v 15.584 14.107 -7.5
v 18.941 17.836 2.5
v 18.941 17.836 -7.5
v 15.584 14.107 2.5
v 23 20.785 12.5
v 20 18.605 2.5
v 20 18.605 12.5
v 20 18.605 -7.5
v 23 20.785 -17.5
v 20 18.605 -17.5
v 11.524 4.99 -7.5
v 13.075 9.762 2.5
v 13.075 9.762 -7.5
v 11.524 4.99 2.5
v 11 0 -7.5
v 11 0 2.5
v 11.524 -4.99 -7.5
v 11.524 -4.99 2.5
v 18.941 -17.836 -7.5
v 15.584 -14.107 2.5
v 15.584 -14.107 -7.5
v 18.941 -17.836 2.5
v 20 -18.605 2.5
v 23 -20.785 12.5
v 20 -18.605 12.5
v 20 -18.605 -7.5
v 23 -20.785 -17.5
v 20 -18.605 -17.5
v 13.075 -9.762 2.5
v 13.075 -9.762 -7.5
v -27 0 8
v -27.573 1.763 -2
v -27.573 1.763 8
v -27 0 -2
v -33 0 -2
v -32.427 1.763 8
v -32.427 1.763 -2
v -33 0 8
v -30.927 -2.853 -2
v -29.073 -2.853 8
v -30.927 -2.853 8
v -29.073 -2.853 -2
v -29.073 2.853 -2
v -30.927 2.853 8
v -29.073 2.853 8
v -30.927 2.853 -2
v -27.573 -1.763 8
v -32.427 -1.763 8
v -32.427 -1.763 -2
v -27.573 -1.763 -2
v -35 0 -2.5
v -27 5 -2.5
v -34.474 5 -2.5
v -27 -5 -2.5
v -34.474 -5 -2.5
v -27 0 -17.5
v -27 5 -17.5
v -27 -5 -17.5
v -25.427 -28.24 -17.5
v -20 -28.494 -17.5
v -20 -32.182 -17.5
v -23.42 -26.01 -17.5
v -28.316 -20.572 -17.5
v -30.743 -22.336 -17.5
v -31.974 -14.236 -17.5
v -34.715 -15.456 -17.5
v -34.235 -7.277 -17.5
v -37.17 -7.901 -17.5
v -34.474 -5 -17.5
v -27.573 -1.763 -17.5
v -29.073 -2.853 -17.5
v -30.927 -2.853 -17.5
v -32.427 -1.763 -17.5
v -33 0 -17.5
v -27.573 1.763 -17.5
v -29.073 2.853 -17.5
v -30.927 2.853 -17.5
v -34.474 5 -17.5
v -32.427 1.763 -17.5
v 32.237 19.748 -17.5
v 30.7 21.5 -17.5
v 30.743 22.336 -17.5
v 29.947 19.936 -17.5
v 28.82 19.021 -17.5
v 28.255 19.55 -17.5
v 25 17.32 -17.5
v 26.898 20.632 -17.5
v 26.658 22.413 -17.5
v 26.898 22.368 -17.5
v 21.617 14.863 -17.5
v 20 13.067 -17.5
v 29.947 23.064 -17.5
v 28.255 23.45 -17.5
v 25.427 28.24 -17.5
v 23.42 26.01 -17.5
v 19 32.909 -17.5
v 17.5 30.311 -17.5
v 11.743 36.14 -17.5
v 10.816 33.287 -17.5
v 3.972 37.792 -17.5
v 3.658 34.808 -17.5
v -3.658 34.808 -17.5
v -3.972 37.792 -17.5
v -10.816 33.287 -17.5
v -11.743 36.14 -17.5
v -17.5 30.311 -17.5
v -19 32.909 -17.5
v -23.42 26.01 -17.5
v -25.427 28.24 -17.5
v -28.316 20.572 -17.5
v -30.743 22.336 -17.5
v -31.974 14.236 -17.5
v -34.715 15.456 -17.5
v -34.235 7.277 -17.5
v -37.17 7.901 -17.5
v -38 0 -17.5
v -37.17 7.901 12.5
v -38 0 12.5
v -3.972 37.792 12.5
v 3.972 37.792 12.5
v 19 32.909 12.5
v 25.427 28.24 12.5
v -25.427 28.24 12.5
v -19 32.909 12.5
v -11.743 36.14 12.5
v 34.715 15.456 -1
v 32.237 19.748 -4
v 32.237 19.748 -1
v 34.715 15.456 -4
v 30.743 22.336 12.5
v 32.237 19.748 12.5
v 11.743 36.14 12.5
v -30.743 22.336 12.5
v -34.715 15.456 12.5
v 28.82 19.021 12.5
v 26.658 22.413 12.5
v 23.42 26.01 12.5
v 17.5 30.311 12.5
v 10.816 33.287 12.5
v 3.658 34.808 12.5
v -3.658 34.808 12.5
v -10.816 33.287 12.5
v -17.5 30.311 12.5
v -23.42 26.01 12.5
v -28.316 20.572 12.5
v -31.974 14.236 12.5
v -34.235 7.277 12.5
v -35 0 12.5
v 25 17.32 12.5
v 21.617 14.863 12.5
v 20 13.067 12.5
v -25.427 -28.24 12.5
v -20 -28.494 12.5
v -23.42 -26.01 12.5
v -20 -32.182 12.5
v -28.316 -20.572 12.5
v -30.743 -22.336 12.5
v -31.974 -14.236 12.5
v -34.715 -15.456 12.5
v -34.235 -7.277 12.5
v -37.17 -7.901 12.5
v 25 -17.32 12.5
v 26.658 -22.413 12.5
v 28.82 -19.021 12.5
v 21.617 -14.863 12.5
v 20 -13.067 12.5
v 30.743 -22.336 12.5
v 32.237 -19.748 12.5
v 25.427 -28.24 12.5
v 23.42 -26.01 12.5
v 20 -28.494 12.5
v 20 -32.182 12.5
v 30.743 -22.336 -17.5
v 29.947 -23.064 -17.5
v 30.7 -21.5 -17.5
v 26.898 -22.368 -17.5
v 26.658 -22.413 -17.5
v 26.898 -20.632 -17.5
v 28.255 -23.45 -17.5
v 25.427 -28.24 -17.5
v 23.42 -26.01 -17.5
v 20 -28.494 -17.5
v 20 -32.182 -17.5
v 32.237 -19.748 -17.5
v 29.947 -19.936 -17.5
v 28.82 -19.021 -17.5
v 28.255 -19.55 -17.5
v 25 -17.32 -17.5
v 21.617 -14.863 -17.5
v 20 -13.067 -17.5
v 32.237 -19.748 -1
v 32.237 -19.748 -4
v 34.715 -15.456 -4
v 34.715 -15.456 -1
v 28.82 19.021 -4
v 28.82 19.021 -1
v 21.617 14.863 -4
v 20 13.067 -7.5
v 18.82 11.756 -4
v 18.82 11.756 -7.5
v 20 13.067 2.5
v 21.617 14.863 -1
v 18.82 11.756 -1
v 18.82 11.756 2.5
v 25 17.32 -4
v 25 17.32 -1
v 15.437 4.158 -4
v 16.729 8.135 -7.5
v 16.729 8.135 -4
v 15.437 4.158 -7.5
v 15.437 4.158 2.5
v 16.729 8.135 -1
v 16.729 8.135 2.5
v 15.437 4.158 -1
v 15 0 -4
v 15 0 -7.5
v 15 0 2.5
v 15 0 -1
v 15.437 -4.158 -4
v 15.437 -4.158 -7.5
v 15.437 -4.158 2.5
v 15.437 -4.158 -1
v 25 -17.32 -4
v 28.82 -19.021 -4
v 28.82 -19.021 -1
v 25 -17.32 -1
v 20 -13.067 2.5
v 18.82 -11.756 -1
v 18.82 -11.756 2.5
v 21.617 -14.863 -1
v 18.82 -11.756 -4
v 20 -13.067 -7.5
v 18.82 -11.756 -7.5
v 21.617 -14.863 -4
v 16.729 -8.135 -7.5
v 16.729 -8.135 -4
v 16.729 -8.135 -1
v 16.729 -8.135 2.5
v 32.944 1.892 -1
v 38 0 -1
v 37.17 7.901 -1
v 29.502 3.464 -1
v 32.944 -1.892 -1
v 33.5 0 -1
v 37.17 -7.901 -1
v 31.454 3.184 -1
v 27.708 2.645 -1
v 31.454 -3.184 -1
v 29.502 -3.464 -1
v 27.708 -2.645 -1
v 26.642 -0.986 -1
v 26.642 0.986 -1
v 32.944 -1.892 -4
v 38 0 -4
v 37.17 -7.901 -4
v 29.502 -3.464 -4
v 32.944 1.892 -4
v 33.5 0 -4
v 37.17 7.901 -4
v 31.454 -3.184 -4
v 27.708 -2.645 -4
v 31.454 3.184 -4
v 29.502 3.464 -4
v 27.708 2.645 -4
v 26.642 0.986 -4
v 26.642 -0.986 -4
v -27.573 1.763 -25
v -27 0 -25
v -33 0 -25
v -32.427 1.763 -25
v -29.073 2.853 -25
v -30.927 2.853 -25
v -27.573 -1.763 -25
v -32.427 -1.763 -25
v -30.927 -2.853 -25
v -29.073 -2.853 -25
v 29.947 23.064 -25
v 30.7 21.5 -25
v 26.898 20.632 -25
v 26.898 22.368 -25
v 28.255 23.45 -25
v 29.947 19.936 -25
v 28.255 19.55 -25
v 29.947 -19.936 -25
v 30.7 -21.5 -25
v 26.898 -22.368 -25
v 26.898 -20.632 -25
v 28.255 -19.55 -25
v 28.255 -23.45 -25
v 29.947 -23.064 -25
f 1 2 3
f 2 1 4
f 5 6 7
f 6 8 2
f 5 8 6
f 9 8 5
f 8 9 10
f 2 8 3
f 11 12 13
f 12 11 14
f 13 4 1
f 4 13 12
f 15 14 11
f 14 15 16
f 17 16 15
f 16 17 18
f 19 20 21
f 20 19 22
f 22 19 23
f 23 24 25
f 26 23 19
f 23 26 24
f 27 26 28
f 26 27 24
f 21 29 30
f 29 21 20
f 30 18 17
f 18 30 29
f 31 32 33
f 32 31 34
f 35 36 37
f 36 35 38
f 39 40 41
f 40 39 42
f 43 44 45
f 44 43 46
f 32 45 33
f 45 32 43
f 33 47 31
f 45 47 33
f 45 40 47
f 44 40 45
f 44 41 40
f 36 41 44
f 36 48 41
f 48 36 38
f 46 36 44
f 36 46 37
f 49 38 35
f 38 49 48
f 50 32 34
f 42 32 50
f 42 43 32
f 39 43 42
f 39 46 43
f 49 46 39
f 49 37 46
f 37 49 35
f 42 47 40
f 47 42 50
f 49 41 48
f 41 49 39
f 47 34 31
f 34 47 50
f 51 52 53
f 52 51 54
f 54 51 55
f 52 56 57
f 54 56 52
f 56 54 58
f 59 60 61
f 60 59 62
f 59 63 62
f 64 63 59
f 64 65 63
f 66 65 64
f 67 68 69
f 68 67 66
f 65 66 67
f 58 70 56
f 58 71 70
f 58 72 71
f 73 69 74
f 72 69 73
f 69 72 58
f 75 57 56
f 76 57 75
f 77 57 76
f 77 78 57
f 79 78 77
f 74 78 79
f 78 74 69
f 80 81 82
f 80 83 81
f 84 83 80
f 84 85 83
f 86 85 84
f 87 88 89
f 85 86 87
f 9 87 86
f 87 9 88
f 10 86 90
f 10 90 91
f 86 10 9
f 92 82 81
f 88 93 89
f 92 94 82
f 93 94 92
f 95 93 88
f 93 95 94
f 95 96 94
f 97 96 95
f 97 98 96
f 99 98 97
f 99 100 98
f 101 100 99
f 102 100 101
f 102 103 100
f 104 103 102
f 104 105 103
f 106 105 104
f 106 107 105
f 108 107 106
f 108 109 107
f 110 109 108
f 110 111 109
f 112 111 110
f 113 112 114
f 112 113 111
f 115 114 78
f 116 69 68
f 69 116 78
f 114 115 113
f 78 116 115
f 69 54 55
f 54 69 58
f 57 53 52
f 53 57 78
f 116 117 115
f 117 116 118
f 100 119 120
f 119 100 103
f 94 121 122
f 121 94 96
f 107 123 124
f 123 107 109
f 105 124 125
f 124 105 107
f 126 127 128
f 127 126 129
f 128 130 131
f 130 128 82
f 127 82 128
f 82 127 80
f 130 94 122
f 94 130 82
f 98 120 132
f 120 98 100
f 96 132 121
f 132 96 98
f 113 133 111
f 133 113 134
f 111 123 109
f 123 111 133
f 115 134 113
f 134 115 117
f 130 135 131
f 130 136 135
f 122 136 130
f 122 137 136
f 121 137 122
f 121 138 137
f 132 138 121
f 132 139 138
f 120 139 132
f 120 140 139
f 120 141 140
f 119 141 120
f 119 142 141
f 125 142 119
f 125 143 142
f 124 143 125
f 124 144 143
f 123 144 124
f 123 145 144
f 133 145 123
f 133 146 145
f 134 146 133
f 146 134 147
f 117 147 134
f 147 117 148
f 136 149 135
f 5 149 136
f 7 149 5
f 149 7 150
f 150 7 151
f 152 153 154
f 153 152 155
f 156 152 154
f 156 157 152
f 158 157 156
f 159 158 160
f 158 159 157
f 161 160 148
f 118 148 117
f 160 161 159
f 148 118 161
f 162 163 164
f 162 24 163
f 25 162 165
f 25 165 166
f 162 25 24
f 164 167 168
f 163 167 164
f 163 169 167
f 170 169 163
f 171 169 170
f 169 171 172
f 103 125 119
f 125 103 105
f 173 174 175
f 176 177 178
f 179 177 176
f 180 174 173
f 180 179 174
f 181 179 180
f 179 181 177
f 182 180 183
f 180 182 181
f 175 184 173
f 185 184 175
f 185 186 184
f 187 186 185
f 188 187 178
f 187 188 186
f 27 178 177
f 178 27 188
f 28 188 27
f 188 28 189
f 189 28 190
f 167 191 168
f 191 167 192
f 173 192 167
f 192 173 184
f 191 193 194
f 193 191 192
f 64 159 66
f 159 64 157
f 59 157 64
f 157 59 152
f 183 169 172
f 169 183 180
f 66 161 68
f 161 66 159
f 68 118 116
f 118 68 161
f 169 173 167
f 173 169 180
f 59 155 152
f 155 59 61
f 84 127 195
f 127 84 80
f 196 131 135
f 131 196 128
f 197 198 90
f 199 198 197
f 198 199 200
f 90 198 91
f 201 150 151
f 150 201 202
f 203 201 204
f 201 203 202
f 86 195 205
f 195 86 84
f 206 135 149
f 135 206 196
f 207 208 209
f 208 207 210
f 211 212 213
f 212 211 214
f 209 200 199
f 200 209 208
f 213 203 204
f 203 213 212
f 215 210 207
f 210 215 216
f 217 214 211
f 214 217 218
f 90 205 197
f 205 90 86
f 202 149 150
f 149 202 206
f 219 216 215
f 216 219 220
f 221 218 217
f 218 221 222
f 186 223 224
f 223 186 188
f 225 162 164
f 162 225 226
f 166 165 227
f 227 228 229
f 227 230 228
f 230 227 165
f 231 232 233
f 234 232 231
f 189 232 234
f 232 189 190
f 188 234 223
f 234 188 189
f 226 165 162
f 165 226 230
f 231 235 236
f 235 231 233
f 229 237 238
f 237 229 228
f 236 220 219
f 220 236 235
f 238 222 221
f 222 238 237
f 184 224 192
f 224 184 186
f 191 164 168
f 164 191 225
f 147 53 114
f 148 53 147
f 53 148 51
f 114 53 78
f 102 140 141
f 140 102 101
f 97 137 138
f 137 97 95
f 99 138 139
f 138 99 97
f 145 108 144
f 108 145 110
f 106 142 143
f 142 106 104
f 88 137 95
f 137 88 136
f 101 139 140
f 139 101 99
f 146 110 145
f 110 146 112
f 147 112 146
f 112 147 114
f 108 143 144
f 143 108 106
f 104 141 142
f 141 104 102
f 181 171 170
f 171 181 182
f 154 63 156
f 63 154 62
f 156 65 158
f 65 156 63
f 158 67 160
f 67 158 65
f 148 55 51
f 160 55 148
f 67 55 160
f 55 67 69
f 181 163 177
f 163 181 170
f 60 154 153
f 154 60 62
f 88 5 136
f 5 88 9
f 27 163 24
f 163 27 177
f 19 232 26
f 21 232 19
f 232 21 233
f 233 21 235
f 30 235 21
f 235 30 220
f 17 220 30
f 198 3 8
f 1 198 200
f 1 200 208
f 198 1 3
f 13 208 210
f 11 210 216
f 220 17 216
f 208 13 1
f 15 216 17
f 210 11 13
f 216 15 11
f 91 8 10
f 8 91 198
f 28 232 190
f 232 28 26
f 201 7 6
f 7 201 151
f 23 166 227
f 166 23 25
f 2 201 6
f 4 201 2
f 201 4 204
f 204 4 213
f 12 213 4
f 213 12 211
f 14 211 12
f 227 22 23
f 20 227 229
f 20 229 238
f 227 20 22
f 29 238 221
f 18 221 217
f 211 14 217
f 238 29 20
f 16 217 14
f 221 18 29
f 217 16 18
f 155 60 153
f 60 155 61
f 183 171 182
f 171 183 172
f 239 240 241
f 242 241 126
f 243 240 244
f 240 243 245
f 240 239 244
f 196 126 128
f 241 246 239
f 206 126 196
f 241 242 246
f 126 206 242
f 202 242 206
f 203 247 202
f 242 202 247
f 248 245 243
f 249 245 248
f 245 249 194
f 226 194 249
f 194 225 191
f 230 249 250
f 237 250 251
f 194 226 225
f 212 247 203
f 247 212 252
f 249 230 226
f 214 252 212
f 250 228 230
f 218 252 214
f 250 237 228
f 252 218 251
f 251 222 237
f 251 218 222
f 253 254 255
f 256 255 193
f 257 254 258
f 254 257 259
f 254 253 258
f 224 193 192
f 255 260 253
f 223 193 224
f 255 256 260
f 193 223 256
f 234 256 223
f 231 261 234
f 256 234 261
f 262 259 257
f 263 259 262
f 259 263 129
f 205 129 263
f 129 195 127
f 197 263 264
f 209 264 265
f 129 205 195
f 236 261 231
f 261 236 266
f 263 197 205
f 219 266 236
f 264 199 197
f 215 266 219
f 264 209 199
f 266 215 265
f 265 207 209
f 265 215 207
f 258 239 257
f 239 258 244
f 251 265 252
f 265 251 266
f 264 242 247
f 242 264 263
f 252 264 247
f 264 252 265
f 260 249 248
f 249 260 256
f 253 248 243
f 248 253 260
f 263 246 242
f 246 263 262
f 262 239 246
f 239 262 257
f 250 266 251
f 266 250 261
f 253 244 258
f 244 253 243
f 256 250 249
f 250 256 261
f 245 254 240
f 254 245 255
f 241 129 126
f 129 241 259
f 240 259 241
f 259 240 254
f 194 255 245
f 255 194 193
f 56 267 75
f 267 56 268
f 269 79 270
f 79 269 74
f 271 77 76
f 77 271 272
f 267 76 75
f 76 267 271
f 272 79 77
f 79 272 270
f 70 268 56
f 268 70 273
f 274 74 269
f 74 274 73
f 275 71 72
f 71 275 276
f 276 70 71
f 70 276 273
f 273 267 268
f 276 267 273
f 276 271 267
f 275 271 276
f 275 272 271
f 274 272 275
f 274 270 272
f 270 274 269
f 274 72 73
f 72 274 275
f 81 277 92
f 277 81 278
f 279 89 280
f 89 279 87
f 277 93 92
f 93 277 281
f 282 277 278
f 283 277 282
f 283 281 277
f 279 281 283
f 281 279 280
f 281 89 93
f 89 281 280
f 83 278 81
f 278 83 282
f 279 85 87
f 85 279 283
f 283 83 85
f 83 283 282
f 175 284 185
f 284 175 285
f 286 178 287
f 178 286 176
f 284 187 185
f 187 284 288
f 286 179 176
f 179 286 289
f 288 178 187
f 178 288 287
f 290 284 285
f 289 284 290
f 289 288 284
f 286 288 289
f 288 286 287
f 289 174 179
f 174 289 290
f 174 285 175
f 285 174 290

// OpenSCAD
module semi_circle(
    height=10,
    outer_radius=38,
    inner_radius=20,
    offset=[35,0,0]
)
{
    difference()
    {
        cylinder(h = height, r = outer_radius, center = true);
        translate(offset)cylinder(h = height, r = inner_radius, center = true);
    }
};


// The inner barrier
module inner_barrier()
{
    union(){
        translate([0,0,-2.5])
        difference()
        {
            semi_circle(
                height=30,
                outer_radius=38,
                inner_radius=20,
                offset=[35,0,0]
            );
            semi_circle(
                height=30,
                outer_radius=35,
                inner_radius=24,
                offset=[35,0,0]
            );
            translate([15,0,-10]) cube(size=[10,40,10],center=true);
            translate([15,0,10]) cube(size=[10,40,10],center=true);
            translate([0,-33,-10]) cube(size=[40,10,50],center=true)
            translate([0,0,-16])cube([35,69,5],center=true);
        }
        
        // The Rod
        translate([-30,0,0])union()
        {
            translate([0,0,3])cylinder(h=10,r=3,center=true);
            translate([-2,0,-10])cube([10,10,15],center=true);
        }
        
        // The connector rods
        translate([-30,0,-20])cylinder(h=10,r=3,center=true);
        translate([28.7,21.5,-20])cylinder(h=10,r=2,center=true);
        translate([28.7,-21.5,-20])cylinder(h=10,r=2,center=true);
        
        // The mounting bracket for the push button rotary encoder
        difference()
        {
            translate([30,0,-2.5]) 
            difference()
            {
                cube(size=[40,40,3],center=true);
                cylinder(h=10,r=3.5,center=true);
            }
            difference()
            {
                cylinder(h = 20, r = 60, center = true);
                cylinder(h = 20, r = 38, center = true);
            }
            semi_circle(
                height=30,
                outer_radius=35,
                inner_radius=24,
                offset=[35,0,0]
            );
        }
    }
};

inner_barrier();
